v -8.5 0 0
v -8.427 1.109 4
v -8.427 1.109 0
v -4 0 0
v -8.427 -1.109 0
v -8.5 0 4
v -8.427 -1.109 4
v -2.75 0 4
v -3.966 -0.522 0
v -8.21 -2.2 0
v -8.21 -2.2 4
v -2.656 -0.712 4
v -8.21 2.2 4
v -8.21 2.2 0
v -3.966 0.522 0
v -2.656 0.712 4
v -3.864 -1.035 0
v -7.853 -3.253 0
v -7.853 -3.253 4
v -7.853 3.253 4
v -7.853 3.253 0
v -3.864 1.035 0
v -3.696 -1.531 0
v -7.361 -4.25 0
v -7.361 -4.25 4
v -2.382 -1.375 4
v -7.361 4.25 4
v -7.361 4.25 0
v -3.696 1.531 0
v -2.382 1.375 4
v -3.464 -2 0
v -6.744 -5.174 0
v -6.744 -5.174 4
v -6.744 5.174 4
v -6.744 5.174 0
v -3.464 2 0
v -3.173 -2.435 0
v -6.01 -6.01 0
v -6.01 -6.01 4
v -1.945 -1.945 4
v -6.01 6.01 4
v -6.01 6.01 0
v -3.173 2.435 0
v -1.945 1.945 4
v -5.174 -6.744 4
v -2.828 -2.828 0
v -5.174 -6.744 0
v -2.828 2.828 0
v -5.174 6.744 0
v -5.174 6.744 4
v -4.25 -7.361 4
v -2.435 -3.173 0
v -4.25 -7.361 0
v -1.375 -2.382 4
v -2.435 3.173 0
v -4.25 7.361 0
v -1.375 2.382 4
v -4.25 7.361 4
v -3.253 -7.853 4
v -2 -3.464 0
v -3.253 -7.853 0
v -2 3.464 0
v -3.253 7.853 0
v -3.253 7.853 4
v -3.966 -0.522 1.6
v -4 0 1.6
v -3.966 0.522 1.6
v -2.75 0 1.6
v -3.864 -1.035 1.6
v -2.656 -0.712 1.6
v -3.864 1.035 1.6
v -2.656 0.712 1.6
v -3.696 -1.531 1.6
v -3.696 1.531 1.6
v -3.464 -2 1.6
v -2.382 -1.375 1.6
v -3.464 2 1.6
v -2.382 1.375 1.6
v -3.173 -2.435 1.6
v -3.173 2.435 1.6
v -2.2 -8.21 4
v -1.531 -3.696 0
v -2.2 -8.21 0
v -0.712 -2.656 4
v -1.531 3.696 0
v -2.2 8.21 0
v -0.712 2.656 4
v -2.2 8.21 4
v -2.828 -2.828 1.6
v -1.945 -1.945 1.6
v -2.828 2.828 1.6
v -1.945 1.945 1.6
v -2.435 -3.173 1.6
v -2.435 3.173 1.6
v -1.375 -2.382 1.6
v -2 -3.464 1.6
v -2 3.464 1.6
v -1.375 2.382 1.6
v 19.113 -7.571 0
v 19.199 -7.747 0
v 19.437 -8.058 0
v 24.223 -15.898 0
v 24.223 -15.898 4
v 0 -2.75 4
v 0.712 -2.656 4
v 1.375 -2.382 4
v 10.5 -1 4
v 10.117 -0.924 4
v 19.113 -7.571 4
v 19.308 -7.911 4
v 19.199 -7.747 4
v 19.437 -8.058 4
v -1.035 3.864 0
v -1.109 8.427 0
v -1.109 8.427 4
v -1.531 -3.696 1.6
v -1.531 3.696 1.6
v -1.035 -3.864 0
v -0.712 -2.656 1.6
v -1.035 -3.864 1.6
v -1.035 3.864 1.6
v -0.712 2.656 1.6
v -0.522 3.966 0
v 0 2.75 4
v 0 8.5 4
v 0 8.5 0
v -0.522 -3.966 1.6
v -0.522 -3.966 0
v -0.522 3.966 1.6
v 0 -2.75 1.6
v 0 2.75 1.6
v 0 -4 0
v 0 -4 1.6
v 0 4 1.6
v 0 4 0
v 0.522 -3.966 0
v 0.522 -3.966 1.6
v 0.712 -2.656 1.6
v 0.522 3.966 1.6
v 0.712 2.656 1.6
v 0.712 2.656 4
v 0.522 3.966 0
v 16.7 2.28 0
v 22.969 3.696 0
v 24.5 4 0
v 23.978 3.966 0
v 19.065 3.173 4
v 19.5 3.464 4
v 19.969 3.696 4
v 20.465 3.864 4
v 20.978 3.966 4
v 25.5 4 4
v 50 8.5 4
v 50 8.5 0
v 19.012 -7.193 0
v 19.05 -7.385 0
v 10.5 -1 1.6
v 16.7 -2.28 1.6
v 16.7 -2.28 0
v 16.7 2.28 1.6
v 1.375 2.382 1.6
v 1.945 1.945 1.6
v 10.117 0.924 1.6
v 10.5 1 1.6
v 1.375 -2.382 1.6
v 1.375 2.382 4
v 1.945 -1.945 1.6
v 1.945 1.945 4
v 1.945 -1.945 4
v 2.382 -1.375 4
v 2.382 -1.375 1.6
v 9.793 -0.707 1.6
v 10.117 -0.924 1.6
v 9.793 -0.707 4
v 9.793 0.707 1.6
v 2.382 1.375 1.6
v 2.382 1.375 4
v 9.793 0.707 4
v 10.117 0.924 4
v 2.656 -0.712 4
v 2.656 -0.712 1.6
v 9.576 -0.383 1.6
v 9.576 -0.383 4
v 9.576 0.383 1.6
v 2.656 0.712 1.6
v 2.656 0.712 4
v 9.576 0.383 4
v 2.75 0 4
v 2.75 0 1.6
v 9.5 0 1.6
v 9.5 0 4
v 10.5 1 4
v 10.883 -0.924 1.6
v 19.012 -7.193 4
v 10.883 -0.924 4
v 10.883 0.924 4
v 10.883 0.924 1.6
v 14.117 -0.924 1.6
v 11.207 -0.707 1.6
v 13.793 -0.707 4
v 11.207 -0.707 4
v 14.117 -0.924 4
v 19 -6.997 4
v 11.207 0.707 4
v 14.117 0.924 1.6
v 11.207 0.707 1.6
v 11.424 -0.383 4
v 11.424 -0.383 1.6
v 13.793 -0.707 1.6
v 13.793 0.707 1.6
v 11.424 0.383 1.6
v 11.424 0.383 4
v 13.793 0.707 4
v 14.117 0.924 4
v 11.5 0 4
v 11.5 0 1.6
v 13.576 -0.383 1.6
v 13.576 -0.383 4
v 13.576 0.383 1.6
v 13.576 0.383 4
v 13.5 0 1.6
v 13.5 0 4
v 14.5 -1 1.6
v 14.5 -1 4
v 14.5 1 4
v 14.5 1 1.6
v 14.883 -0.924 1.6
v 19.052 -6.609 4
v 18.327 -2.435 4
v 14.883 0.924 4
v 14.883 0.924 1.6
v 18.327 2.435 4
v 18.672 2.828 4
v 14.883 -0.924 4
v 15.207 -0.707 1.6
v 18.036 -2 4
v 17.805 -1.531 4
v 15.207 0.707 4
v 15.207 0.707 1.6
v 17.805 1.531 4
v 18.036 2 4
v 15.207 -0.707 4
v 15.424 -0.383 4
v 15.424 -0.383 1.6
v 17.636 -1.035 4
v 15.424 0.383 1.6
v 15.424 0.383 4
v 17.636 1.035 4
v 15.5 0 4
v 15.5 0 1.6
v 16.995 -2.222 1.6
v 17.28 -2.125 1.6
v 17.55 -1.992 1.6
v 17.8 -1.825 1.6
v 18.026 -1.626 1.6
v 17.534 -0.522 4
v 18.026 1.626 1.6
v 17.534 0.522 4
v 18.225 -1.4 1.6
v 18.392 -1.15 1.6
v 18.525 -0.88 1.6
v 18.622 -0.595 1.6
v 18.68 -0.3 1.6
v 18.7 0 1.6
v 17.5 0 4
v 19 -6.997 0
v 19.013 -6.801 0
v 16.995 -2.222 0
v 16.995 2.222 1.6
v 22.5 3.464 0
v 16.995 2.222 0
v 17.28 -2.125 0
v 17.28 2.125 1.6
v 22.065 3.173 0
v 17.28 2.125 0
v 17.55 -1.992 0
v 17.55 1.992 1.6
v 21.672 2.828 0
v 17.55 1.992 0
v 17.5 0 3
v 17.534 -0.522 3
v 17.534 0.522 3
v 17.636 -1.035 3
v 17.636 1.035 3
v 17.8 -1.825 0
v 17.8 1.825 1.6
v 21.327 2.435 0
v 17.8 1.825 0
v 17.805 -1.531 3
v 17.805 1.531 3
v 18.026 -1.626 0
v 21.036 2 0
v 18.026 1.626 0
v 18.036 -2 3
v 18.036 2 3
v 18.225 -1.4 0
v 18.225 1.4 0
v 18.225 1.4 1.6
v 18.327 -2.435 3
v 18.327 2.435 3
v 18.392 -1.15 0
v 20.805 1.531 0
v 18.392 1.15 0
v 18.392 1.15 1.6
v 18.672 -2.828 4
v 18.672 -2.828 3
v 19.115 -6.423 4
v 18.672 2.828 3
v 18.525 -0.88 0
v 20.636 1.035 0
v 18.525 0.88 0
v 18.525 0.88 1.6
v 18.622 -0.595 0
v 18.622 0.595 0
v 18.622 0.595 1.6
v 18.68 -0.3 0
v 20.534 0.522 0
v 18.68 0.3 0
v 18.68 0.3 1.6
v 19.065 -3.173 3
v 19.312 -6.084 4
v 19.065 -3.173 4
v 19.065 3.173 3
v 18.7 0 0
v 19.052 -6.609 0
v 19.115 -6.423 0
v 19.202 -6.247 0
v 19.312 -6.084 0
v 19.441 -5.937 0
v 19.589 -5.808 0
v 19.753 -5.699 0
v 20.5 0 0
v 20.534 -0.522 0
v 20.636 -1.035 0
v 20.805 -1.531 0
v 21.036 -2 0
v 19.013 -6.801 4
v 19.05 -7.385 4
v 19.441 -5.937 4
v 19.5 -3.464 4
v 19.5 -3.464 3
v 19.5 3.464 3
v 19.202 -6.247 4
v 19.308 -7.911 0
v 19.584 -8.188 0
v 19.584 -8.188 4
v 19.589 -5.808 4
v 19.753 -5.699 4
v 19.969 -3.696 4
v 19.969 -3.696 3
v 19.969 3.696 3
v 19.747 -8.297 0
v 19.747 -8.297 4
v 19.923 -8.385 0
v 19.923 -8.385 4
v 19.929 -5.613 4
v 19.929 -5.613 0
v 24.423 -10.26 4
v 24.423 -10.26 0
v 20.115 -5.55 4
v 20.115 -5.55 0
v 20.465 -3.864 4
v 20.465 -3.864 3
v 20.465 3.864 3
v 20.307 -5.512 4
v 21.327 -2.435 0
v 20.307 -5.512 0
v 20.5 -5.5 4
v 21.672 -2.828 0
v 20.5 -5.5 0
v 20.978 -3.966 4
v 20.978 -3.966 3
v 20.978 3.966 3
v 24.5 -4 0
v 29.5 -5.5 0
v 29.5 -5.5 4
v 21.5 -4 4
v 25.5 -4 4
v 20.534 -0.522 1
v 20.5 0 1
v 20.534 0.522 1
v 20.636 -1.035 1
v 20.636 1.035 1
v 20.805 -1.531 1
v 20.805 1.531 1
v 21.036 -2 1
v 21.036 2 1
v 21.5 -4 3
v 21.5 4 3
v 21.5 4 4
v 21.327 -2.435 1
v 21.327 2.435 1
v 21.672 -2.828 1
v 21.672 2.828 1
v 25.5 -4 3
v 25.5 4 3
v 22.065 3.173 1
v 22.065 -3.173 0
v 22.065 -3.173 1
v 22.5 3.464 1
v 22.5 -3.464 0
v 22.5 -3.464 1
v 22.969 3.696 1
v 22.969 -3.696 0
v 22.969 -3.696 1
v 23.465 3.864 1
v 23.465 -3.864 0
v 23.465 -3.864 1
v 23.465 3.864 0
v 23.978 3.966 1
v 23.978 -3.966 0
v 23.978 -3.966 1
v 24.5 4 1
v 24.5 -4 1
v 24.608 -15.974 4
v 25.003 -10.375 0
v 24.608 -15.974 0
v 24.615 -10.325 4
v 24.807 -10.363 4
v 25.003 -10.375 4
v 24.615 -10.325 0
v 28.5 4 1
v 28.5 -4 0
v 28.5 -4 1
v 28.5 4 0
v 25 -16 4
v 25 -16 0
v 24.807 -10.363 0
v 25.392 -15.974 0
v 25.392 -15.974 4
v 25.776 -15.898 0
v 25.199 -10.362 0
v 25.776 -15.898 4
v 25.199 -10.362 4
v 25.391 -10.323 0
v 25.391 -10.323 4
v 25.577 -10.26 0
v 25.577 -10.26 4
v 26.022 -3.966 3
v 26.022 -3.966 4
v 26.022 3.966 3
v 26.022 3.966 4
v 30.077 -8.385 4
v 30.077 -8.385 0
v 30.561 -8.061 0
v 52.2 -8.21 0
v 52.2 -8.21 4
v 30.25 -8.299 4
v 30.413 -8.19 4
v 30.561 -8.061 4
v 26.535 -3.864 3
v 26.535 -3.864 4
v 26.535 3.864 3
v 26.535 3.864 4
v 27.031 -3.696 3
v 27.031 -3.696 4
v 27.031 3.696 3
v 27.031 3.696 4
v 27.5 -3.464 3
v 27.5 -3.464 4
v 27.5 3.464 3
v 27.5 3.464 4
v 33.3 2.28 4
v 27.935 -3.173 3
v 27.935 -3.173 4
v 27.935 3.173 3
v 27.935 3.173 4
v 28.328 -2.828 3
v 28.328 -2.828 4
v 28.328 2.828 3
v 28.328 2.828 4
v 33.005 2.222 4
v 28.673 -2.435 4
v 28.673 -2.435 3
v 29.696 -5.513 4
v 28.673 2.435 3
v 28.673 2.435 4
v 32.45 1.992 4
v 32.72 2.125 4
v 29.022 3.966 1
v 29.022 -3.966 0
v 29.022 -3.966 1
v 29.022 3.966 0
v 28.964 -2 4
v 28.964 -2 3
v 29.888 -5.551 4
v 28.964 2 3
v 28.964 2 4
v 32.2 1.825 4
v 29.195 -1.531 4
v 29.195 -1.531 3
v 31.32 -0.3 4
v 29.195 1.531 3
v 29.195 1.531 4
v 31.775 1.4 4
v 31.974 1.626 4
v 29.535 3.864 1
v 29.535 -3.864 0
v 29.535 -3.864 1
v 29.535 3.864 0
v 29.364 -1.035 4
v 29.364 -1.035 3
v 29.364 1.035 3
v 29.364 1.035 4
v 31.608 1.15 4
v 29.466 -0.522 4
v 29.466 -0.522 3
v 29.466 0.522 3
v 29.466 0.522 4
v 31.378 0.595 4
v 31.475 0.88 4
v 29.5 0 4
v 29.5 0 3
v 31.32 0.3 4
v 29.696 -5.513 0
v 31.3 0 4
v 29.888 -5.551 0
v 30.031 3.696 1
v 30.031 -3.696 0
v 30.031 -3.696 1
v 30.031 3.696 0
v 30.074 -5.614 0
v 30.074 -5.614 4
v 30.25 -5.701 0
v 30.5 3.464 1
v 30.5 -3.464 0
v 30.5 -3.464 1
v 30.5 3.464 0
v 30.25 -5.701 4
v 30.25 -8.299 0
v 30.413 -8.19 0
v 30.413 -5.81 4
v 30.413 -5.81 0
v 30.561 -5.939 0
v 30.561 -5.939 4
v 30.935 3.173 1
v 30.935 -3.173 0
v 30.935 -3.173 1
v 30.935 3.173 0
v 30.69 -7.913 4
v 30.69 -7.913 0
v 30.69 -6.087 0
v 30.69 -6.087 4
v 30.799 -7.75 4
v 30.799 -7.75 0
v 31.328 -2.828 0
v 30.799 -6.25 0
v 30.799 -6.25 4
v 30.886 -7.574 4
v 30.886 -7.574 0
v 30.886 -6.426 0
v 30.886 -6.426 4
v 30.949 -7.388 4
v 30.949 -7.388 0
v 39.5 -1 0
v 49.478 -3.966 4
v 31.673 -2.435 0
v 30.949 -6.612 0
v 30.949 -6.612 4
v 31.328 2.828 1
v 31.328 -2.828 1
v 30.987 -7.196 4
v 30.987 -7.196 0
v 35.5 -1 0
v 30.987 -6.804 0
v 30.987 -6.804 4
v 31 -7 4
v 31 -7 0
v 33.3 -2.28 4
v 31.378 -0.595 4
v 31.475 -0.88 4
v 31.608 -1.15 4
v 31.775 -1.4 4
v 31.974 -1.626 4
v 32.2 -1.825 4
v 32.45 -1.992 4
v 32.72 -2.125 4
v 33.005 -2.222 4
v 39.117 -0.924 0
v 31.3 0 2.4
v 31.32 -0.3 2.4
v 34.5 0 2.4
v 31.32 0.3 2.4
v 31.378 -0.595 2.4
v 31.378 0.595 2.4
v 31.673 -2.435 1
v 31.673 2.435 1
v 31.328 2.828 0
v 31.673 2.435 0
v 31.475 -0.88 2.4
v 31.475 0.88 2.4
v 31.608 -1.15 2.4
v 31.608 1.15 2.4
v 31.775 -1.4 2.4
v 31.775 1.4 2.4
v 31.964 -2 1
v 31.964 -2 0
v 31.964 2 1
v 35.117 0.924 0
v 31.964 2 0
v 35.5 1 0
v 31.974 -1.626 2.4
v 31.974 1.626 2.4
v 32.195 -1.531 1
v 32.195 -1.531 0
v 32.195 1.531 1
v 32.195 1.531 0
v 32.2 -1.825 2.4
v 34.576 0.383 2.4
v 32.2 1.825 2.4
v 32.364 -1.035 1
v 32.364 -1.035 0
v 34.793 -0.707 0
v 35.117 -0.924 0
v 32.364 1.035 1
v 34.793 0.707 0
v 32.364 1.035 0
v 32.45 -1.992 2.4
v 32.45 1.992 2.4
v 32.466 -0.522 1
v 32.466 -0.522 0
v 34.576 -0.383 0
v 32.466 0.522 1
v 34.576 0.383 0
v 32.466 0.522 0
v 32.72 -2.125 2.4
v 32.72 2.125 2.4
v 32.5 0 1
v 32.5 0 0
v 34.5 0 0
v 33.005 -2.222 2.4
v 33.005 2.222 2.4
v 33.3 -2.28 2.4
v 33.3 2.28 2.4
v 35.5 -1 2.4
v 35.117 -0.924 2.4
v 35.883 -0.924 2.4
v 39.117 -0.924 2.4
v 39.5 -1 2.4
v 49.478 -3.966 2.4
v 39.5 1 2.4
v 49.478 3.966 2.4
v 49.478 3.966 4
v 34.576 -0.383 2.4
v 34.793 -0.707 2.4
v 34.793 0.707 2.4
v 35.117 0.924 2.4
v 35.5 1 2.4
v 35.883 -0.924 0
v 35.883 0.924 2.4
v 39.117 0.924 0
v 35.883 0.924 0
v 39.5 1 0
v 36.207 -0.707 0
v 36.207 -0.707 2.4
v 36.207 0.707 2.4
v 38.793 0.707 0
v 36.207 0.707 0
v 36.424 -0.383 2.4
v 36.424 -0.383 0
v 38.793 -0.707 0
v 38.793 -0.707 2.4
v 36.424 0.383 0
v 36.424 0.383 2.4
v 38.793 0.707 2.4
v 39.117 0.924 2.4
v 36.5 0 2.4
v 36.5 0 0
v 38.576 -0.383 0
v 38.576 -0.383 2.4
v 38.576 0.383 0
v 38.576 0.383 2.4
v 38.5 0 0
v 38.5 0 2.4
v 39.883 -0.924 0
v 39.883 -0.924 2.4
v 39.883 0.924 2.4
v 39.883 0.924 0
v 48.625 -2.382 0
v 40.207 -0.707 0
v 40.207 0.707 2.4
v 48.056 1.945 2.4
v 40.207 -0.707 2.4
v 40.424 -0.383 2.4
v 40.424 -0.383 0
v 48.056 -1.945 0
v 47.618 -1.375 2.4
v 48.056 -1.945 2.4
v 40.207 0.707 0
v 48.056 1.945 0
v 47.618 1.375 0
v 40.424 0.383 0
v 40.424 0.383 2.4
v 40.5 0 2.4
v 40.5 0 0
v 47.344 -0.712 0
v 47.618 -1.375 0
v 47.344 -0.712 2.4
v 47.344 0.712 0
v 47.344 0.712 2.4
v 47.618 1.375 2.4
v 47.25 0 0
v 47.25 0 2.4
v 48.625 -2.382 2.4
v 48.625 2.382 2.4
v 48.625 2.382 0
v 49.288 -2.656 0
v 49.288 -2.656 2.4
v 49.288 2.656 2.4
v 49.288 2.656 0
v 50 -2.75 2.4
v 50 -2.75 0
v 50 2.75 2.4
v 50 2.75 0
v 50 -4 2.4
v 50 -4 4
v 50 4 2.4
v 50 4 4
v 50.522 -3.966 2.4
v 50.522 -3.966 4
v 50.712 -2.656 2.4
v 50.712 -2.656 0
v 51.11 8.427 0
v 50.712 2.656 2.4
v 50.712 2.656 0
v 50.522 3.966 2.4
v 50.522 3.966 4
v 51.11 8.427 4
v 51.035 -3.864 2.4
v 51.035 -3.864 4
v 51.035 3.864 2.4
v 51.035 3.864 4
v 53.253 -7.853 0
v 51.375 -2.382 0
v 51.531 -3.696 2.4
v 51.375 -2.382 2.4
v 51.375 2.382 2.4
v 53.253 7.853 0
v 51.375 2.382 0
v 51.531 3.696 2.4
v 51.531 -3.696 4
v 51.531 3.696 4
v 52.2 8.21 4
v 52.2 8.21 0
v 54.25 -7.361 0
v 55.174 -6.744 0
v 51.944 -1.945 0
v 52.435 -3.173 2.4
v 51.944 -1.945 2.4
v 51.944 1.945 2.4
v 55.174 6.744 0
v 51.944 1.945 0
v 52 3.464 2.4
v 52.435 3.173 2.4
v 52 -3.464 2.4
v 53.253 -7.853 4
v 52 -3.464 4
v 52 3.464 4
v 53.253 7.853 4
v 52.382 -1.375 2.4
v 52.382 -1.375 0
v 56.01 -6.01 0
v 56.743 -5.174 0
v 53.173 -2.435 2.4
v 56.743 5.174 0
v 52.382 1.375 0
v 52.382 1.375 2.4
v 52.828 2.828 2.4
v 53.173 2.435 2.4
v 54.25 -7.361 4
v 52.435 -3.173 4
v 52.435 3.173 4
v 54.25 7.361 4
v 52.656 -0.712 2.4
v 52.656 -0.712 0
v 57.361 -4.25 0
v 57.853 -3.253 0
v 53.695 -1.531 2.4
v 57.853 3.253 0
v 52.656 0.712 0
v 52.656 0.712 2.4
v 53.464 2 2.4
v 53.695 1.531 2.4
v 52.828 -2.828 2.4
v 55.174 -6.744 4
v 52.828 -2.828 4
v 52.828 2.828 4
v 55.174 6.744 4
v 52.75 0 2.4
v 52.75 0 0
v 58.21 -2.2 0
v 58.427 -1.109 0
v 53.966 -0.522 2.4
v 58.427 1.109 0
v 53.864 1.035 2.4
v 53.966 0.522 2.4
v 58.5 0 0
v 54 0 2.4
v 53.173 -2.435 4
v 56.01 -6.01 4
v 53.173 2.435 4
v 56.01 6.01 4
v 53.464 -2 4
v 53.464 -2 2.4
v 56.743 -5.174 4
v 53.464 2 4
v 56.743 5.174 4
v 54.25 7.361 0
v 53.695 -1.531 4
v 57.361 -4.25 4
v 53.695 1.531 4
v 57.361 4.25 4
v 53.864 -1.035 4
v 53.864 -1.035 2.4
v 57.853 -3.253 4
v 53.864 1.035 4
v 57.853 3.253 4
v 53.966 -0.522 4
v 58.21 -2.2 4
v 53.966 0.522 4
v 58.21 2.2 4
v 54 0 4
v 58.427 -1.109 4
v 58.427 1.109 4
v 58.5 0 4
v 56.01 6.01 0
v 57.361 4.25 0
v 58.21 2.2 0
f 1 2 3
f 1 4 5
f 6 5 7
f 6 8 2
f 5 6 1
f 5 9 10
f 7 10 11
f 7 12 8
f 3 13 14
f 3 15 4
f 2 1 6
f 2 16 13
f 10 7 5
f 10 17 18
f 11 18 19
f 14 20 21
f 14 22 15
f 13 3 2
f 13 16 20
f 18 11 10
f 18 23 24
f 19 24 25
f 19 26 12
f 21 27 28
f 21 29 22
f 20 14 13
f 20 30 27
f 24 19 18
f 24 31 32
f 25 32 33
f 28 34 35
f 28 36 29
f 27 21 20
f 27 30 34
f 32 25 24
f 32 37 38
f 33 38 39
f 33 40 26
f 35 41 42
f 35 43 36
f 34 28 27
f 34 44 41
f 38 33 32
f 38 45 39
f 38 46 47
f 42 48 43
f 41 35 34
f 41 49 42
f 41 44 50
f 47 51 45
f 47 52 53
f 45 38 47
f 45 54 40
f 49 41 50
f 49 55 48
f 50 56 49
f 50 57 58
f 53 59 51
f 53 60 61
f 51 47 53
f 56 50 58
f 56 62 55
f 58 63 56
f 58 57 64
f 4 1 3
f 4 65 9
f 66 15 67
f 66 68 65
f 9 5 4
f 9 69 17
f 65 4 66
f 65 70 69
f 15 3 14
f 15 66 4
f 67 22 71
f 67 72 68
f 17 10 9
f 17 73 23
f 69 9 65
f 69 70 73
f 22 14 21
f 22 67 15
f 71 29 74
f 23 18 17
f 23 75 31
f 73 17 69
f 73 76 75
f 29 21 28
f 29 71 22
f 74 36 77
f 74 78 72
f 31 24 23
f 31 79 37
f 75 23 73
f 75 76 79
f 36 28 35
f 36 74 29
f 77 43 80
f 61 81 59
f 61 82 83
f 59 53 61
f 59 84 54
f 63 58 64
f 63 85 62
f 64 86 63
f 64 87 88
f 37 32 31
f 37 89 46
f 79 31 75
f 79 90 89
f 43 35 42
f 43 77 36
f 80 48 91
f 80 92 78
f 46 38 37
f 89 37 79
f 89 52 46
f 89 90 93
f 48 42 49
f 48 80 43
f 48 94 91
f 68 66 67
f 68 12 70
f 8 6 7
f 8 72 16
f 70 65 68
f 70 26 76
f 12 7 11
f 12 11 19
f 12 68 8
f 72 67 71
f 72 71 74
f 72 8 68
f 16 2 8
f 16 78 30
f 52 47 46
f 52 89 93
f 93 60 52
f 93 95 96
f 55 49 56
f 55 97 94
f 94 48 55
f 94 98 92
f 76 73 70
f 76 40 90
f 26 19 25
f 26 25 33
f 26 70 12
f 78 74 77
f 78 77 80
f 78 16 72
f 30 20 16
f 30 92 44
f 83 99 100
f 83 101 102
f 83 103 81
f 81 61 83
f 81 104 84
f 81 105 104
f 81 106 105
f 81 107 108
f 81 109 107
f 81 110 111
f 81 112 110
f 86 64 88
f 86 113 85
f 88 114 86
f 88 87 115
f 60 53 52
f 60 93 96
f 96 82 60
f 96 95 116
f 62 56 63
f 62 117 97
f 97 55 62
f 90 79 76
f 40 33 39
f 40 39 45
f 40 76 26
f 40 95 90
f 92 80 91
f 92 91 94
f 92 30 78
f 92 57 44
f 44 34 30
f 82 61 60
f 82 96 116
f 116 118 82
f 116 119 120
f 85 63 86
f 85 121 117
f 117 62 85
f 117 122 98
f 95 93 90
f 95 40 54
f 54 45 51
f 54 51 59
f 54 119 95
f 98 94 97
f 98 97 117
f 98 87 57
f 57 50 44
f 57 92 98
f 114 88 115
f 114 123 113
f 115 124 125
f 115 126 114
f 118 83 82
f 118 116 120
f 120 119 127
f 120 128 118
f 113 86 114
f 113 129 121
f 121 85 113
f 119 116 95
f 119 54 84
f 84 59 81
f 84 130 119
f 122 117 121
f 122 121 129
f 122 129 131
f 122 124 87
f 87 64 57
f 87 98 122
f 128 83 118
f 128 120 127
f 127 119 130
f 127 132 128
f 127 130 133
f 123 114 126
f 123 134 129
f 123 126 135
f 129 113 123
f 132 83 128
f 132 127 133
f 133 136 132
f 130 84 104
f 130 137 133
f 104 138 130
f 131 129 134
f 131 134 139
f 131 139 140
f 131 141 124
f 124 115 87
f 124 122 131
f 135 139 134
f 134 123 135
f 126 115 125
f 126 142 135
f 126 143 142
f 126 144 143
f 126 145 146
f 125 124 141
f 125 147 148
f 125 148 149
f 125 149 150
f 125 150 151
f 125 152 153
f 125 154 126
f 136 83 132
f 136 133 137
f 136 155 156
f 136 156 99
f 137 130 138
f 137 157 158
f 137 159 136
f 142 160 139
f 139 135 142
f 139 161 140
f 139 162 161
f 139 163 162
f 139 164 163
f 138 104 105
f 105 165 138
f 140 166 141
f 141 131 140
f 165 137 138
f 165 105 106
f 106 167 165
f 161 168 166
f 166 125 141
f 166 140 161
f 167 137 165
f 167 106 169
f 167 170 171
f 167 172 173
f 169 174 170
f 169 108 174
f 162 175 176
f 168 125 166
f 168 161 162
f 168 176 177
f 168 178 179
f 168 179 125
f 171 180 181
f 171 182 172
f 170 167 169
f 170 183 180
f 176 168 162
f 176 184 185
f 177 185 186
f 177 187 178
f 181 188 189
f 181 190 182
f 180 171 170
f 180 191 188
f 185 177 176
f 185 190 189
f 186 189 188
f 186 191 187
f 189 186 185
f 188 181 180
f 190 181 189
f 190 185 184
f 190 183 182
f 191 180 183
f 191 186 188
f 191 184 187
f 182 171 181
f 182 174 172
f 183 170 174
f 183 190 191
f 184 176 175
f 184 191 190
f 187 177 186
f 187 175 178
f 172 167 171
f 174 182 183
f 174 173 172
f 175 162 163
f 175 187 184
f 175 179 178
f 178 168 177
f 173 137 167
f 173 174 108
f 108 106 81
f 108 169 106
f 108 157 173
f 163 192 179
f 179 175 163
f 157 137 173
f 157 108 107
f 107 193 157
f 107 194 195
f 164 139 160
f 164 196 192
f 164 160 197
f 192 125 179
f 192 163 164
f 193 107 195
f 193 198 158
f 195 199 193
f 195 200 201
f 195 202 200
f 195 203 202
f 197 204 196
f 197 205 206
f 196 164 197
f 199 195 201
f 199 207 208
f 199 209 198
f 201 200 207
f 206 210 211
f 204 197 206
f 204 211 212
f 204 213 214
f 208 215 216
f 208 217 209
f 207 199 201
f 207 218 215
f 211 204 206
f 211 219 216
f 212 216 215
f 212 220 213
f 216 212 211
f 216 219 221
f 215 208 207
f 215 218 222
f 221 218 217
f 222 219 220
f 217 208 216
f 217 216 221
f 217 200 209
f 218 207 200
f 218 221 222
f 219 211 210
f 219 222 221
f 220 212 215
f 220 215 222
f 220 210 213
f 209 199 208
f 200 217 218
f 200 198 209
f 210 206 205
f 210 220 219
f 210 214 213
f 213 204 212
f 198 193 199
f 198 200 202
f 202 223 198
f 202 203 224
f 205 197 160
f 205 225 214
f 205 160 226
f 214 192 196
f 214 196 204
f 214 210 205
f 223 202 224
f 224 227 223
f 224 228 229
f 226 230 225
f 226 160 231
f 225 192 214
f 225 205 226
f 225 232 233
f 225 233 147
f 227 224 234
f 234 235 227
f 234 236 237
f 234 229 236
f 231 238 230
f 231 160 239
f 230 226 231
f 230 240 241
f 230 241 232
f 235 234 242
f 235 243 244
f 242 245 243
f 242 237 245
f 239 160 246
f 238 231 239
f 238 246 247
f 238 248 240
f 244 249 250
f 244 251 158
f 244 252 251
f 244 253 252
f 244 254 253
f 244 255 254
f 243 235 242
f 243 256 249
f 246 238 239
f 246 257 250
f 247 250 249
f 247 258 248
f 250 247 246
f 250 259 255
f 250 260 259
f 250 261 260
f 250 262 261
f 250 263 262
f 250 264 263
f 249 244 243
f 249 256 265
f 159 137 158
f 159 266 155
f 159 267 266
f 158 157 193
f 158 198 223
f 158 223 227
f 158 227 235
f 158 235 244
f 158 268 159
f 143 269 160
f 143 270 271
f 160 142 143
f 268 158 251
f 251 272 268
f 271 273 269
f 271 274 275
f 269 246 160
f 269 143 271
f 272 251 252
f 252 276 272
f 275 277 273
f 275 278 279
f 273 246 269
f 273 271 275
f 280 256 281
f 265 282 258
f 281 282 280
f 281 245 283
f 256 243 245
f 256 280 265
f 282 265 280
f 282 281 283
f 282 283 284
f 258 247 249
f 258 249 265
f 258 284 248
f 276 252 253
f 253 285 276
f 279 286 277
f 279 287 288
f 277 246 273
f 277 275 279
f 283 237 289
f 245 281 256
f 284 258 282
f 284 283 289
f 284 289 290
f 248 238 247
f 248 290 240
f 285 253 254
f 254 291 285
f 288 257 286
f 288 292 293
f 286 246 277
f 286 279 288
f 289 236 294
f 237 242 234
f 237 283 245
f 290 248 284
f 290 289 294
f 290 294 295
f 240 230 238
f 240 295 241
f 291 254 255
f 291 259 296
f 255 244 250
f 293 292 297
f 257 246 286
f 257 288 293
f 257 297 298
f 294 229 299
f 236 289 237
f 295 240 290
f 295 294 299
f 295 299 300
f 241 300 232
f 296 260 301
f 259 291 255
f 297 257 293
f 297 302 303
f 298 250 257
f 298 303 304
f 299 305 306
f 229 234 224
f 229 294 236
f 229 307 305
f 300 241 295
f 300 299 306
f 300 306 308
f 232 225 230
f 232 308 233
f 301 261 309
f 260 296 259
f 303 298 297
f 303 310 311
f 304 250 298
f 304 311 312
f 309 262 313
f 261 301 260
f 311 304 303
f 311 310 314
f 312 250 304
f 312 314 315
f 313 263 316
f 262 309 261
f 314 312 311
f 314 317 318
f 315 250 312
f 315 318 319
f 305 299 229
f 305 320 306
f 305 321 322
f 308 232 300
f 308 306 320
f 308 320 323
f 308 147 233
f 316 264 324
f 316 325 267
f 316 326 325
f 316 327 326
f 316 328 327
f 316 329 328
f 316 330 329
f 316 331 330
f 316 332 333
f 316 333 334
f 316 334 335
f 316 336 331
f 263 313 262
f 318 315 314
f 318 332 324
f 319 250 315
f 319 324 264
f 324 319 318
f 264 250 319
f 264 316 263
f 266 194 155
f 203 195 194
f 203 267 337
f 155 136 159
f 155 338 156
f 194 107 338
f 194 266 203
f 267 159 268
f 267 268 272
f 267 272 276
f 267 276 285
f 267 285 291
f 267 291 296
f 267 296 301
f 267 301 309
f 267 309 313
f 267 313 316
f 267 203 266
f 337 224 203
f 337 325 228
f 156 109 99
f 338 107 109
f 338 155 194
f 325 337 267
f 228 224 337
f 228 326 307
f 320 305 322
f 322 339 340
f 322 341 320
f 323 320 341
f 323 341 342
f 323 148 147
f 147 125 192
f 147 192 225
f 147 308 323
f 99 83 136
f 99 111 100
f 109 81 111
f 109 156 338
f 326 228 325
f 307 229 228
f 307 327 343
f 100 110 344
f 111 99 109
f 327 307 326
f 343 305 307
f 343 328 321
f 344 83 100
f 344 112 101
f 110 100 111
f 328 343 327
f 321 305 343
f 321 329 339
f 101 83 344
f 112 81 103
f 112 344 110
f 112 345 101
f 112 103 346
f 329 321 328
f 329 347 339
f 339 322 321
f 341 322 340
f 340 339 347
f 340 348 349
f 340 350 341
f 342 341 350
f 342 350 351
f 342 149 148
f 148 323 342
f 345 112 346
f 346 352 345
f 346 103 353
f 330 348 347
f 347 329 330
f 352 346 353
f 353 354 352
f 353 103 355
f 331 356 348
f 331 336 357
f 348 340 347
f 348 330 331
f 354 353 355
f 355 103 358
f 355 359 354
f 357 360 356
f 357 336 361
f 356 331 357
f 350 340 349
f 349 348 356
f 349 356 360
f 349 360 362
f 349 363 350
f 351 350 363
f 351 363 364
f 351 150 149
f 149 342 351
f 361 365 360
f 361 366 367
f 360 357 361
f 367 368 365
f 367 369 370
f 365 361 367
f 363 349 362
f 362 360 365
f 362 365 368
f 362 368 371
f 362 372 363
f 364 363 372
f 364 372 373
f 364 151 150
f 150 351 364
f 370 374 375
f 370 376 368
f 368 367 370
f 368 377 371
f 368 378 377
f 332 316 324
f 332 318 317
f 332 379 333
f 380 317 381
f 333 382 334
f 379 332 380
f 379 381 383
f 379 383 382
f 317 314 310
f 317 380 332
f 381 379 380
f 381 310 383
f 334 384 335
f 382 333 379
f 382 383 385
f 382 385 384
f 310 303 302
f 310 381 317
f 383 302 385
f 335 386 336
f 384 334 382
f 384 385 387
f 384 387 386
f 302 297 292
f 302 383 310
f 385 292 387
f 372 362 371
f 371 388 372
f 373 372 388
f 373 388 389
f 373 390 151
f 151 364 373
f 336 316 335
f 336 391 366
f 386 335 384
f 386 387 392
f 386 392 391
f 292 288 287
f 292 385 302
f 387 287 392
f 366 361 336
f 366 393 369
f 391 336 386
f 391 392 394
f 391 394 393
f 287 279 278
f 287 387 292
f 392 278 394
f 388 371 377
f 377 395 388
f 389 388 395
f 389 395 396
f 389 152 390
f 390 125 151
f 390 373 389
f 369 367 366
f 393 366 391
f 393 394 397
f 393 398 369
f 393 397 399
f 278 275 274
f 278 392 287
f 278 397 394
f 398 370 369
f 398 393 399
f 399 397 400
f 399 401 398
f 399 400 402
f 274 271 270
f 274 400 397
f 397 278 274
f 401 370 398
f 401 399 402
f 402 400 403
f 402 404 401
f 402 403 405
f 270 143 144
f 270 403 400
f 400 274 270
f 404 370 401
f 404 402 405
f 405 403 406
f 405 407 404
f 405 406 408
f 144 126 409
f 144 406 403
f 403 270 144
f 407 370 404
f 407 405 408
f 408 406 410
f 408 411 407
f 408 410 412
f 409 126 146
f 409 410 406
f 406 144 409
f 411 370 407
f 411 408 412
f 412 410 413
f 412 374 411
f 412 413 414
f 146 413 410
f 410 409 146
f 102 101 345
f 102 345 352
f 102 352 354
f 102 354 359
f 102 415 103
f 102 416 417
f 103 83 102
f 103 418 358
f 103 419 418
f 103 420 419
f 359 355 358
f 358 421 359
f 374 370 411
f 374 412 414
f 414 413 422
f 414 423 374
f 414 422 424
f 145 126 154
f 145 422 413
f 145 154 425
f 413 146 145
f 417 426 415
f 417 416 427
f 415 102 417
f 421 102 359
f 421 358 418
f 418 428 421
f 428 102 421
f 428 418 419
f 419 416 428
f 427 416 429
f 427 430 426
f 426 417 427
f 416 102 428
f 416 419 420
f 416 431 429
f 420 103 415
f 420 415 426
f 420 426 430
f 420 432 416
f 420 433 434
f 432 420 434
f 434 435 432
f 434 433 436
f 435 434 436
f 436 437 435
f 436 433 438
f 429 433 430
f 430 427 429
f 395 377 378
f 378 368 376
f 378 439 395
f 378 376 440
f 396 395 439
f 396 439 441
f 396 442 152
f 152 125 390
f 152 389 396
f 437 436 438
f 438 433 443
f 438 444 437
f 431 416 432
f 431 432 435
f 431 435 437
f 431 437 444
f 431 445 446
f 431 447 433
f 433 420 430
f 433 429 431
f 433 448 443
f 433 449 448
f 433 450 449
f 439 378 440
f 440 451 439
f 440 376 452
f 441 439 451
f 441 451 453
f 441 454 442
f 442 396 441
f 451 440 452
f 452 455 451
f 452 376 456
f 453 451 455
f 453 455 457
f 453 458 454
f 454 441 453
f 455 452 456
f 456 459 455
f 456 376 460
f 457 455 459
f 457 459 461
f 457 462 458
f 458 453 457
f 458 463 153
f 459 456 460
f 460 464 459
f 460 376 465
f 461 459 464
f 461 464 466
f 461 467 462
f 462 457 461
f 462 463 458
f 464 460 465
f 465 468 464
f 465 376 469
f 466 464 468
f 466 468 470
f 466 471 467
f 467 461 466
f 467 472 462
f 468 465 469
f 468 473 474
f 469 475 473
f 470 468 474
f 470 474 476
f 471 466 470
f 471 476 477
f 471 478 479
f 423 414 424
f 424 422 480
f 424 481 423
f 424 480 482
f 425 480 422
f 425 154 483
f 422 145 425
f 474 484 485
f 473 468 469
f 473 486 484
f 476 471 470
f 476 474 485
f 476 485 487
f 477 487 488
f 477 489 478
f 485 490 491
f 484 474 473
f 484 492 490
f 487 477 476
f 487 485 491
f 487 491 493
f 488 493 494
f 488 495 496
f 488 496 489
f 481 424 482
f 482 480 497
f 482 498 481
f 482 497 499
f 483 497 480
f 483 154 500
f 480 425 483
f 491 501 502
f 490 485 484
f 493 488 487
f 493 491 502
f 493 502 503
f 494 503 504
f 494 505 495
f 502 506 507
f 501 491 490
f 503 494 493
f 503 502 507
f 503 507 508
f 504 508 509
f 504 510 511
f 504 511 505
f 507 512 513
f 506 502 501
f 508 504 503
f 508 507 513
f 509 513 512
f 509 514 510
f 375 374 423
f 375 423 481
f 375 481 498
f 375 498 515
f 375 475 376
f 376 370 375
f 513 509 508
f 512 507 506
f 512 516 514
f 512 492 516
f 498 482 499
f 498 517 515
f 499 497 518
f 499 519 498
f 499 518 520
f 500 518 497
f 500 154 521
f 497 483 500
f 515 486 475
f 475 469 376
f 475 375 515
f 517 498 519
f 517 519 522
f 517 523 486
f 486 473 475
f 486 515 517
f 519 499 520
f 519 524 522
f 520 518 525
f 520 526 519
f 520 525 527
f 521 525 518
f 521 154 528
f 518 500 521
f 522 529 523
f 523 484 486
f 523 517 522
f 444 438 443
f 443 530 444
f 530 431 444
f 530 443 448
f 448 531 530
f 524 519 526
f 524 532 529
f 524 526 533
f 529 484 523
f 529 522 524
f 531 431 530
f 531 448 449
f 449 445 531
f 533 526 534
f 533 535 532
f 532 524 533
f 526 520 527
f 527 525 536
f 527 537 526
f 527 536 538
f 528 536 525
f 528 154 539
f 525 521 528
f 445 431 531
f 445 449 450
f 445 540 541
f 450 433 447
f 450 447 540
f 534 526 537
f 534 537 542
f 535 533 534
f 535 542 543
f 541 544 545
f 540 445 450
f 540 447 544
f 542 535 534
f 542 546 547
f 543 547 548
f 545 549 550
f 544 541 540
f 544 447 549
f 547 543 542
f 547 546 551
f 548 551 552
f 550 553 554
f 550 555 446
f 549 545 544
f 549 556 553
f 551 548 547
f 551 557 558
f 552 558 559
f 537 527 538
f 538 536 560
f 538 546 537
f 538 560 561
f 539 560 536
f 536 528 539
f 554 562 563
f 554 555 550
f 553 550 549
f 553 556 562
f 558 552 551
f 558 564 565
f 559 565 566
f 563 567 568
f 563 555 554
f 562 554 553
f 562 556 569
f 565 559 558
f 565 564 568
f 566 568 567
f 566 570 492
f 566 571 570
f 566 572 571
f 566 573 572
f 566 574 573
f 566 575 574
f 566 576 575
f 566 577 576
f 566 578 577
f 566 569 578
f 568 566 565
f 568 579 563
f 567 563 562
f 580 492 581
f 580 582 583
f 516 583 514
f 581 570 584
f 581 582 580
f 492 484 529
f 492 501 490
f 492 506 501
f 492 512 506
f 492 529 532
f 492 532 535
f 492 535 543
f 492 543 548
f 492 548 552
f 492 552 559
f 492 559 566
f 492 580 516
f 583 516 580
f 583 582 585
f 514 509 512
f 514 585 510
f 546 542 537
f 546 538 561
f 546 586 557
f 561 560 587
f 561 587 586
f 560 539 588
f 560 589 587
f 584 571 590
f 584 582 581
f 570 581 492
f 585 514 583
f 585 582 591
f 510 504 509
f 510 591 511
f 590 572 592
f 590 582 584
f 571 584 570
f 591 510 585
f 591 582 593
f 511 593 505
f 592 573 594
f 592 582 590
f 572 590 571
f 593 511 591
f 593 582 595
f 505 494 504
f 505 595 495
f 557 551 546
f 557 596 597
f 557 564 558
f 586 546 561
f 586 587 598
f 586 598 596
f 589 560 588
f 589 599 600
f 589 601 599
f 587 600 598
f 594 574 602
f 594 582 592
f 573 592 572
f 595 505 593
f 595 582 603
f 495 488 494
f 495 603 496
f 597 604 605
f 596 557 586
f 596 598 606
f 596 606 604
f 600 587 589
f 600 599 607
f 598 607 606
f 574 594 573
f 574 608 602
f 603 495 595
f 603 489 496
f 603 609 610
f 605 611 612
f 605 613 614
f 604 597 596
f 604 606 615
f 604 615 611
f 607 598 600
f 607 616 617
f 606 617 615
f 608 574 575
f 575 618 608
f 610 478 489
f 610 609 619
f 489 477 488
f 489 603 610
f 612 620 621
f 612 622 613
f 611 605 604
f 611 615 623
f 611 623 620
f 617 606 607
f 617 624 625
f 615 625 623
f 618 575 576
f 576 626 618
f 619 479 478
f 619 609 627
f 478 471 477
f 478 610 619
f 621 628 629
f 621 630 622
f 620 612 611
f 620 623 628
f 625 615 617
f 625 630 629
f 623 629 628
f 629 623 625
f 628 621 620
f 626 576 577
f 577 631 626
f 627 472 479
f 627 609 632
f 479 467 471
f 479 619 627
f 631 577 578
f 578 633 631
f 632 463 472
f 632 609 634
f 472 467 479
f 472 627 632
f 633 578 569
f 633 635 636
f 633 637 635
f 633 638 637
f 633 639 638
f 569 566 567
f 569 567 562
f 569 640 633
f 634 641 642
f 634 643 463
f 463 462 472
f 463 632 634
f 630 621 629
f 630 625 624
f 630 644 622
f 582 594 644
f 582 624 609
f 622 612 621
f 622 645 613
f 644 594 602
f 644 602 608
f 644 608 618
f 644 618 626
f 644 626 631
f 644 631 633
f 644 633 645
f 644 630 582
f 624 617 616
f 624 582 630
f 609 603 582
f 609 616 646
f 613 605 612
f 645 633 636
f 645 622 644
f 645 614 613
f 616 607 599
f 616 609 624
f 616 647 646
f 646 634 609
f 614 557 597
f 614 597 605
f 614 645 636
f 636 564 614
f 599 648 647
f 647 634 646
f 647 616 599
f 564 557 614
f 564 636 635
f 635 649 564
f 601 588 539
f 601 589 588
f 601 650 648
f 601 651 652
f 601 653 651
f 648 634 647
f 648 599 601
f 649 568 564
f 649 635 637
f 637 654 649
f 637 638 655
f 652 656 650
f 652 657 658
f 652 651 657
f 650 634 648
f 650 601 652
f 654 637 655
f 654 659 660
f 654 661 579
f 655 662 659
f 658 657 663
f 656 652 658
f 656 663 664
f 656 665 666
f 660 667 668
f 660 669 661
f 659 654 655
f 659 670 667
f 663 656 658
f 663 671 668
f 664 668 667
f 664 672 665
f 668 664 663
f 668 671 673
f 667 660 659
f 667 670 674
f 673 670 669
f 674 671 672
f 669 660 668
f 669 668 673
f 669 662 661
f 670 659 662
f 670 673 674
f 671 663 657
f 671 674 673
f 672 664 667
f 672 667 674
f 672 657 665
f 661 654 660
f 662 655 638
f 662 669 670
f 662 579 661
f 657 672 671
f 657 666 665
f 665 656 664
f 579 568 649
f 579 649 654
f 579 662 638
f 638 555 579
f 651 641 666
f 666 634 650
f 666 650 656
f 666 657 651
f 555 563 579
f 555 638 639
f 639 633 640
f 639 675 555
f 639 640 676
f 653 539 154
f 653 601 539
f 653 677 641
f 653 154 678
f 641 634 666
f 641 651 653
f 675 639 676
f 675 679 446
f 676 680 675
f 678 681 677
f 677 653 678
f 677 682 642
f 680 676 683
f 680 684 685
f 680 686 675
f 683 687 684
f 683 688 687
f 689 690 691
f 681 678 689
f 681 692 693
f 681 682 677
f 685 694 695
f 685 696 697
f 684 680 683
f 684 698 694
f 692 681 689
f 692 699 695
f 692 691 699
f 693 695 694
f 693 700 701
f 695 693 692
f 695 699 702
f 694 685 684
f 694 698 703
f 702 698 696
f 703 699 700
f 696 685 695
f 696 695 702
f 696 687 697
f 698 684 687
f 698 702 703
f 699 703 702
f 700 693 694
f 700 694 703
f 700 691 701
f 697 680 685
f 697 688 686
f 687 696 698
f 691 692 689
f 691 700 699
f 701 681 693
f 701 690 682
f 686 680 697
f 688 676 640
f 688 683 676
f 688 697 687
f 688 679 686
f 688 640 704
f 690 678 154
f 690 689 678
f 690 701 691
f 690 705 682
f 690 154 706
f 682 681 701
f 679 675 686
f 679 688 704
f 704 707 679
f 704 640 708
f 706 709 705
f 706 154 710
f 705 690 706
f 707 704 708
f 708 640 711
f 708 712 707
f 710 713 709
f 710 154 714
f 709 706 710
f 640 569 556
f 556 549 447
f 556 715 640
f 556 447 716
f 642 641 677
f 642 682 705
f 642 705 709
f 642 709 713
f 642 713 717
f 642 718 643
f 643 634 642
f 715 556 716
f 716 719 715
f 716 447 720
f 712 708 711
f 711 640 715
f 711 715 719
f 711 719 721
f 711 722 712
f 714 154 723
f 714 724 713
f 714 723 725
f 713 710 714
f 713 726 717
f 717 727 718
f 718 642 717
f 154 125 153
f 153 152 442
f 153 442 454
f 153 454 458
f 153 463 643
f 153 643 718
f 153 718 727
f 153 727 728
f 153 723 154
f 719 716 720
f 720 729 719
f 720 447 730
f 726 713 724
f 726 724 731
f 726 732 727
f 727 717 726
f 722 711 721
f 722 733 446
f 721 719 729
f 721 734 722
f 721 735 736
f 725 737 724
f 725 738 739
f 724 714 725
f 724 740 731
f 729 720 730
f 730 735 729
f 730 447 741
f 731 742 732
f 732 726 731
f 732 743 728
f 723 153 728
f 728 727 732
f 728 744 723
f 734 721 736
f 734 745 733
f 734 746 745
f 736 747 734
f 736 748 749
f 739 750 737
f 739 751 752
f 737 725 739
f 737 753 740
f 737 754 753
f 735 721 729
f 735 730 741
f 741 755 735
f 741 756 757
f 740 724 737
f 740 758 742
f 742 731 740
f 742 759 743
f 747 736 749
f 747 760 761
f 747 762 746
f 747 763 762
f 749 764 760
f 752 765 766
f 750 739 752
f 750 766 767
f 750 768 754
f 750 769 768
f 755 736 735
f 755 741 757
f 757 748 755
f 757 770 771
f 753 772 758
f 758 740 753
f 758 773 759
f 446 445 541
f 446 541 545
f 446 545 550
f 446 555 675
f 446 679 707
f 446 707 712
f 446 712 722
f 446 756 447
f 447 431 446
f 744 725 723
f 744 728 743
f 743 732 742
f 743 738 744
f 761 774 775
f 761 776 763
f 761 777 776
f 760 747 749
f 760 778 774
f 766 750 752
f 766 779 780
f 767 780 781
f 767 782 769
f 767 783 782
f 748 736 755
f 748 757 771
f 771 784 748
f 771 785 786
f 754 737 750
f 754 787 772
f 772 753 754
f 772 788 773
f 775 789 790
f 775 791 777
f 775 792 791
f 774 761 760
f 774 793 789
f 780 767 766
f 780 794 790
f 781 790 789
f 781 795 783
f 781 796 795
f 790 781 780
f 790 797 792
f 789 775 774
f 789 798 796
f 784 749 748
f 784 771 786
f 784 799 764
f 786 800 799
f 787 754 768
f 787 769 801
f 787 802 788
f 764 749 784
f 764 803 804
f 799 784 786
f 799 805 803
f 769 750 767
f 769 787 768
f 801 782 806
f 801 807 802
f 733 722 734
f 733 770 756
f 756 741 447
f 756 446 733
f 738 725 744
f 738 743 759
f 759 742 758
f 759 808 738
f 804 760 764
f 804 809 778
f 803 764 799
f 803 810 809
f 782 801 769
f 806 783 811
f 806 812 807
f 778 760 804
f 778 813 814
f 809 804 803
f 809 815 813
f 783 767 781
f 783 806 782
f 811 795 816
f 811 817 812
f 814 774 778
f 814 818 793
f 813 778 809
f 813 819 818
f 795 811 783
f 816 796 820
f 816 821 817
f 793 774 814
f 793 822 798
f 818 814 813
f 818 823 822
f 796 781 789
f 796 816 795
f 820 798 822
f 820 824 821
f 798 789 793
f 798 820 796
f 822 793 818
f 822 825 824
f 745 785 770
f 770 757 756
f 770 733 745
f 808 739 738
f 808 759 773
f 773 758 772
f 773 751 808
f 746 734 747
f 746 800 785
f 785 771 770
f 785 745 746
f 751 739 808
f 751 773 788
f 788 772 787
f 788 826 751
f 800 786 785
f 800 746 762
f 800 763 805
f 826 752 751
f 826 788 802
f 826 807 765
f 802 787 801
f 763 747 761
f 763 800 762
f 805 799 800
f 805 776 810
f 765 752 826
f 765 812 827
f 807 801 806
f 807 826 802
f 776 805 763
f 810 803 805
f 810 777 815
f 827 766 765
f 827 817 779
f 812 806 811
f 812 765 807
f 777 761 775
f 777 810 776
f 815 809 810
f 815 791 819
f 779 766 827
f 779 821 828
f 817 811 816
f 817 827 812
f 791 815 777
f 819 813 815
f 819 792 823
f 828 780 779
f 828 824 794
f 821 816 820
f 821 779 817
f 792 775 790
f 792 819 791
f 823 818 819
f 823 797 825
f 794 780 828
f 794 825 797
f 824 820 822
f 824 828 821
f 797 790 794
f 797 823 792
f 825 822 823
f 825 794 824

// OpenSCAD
// file: params.scad
// 18 舵机六足 · 3D 打印机身 · 共享参数和公共模块（本文件自己不导出 STL）
//
// 腿的几何尺寸和固件 firmware/hexapod_g7pro/params.h 的默认值一一对应：
//   coxa_len ↔ coxa    femur_len ↔ femur    tibia_len ↔ tibia
//   front_x / front_y / front_angle / mid_y / rear_x / rear_y / rear_angle 同名
// 所以打印这套机身，固件的腿长和安装位置参数都不用改。
//
// 坐标约定（和固件一致）：
//   机身坐标：X+ = 前，Y+ = 左，Z+ = 上，原点 = 机身中心，高度原点 = 大腿舵机轴。
//   腿坐标：原点 = 基节转轴，X+ = 腿朝外，Y+ = 逆时针一侧，Z+ = 上。
// 6 条腿的零件完全一样（不分左右），左右舵机转向的差别由固件里的 dir 参数处理。

/* [舵机 MG90S（量你自己的）] */
servo_w = 12.2;           // 机身宽度 (mm)
servo_l = 22.8;           // 机身长度，沿安装耳方向 (mm)
ear_span = 32.5;          // 两个安装耳外端之间的总长 (mm)
ear_hole_spacing = 28.0;  // 两个安装孔的中心距 (mm)
ear_z = 15.9;             // 机壳底面 → 安装耳下表面 (mm)
ear_t = 2.5;              // 安装耳厚度 (mm)
case_h = 22.7;            // 机壳底面 → 机壳顶面（不含输出轴）(mm)
shaft_off = 5.4;          // 输出轴中心 → 机身中心，沿长度方向 (mm)
shaft_gap = 4.0;          // 机壳顶面 → 舵机臂贴合面 (mm)

/* [舵机臂（单边臂，量你自己的）] */
horn_hub_d = 7.6;         // 舵机臂中心圆盘直径 (mm)
horn_len = 18.5;          // 中心 → 臂尖 (mm)
horn_w_hub = 6.2;         // 臂根宽度 (mm)
horn_w_tip = 4.2;         // 臂尖宽度 (mm)
horn_t = 1.6;             // 臂厚 = 零件上凹槽深度 (mm)
horn_holes = [10.5, 14.5];// 固定舵机臂的两个孔到中心的距离 (mm)
horn_screw_access = 5.5;  // 中心过孔：舵机臂中心螺丝和螺丝刀从这里进 (mm)

/* [腿的几何（和固件 params.h 一致）] */
coxa_len = 28;            // 基节转轴 → 大腿舵机轴 (mm)
femur_len = 50;           // 大腿舵机轴 → 小腿舵机轴 (mm)
tibia_len = 75;           // 小腿舵机轴 → 脚尖 (mm)
front_x = 60; front_y = 40; front_angle = 45;
mid_y = 55;
rear_x = 60; rear_y = 40; rear_angle = 135;

/* [打印余量和螺丝] */
clearance = 0.4;          // 方孔比舵机大多少 (mm)；太紧改 0.5
screw_pilot = 1.6;        // M2 自攻螺丝底孔（舵机安装耳）(mm)
horn_screw_hole = 2.0;    // 舵机臂固定螺丝过孔 (mm)
m3_hole = 3.4;            // M3 通孔 (mm)

/* [机身] */
plate_t = 3.0;            // 底板 / 甲板厚度 (mm)
standoff_h = 25;          // 底板和甲板之间的 M3 铜柱长度 (mm)
bar_t = 4.0;              // 大腿板厚度 (mm)
mount_t = 3.0;            // 舵机安装板厚度 (mm)
coxa_horn_z = 11;         // 基节舵机臂贴合面高度（相对大腿轴）(mm)

/* [Hidden] */
// 6 条腿：[髋轴 X, 髋轴 Y, 朝向°]，顺序 LF LM LR RF RM RR（和固件 leg 0..5 一致）
legs = [
  [ front_x,  front_y,  front_angle],
  [ 0,        mid_y,    90],
  [-rear_x,   rear_y,   rear_angle],
  [ front_x, -front_y, -front_angle],
  [ 0,       -mid_y,   -90],
  [-rear_x,  -rear_y,  -rear_angle]
];
leg_names = ["LF", "LM", "LR", "RF", "RM", "RR"];

pocket_w = servo_w + clearance;
pocket_l = servo_l + clearance;
// 舵机本地坐标：输出轴 = +Z，舵机臂贴合面在 z = 0，机身沿 +X 伸出（机身中心 x = shaft_off）
ear_low = -shaft_gap - case_h + ear_z;       // 安装耳“朝机壳底”的那一面，安装板贴在这里
plate_top_z = coxa_horn_z + ear_low;         // 底板上表面高度（相对大腿轴）
deck_z = plate_top_z + standoff_h;           // 甲板下表面高度

module at_leg(l) translate([l[0], l[1]]) rotate(l[2]) children();

// 舵机实体（装配预览 / 干涉检查用）
module servo_body() {
  color("DimGray") {
    translate([shaft_off - servo_l / 2, -servo_w / 2, -shaft_gap - case_h]) cube([servo_l, servo_w, case_h]);
    // 耳朵和输出轴都留 0.05 mm，避免“刚好贴着”被干涉检查当成碰撞
    translate([shaft_off - ear_span / 2, -servo_w / 2, ear_low + 0.05]) cube([ear_span, servo_w, ear_t - 0.05]);
    translate([0, 0, -shaft_gap]) cylinder(d = 5, h = shaft_gap - 0.05);
  }
}

// 安装板上的舵机方孔 + 两个安装耳螺丝底孔（在舵机本地坐标里，穿过安装板）
module servo_mount_cut() {
  translate([shaft_off - pocket_l / 2, -pocket_w / 2, ear_low - mount_t - 1]) cube([pocket_l, pocket_w, mount_t + 2]);
  for (s = [-1, 1]) translate([shaft_off + s * ear_hole_spacing / 2, 0, ear_low - mount_t - 1])
    cylinder(d = screw_pilot, h = mount_t + 2, $fn = 16);
}

// 单边舵机臂的 2D 外形：中心在原点，臂沿 +X
module horn_2d(extra = 0) {
  hull() {
    circle(d = horn_hub_d + extra);
    translate([0, -(horn_w_hub + extra) / 2]) square([0.01, horn_w_hub + extra]);
    translate([horn_len - horn_w_tip / 2, 0]) circle(d = horn_w_tip + extra);
  }
}

// 舵机臂凹槽：从 z = 0 往 +Z 挖 horn_t 深，加中心过孔和两个螺丝过孔（贯穿 depth）
module horn_cut(depth) {
  translate([0, 0, -0.01]) linear_extrude(horn_t + 0.01) horn_2d(clearance);
  translate([0, 0, -1]) cylinder(d = horn_screw_access, h = depth + 2, $fn = 24);
  for (r = horn_holes) translate([r, 0, -1]) cylinder(d = horn_screw_hole, h = depth + 2, $fn = 16);
}
// main file
// 大腿 femur：打 6 个（6 条腿通用）。平放。
include <parts.scad>
translate([0, 0, bar_t / 2]) rotate([90, 0, 0]) femur_bar();
